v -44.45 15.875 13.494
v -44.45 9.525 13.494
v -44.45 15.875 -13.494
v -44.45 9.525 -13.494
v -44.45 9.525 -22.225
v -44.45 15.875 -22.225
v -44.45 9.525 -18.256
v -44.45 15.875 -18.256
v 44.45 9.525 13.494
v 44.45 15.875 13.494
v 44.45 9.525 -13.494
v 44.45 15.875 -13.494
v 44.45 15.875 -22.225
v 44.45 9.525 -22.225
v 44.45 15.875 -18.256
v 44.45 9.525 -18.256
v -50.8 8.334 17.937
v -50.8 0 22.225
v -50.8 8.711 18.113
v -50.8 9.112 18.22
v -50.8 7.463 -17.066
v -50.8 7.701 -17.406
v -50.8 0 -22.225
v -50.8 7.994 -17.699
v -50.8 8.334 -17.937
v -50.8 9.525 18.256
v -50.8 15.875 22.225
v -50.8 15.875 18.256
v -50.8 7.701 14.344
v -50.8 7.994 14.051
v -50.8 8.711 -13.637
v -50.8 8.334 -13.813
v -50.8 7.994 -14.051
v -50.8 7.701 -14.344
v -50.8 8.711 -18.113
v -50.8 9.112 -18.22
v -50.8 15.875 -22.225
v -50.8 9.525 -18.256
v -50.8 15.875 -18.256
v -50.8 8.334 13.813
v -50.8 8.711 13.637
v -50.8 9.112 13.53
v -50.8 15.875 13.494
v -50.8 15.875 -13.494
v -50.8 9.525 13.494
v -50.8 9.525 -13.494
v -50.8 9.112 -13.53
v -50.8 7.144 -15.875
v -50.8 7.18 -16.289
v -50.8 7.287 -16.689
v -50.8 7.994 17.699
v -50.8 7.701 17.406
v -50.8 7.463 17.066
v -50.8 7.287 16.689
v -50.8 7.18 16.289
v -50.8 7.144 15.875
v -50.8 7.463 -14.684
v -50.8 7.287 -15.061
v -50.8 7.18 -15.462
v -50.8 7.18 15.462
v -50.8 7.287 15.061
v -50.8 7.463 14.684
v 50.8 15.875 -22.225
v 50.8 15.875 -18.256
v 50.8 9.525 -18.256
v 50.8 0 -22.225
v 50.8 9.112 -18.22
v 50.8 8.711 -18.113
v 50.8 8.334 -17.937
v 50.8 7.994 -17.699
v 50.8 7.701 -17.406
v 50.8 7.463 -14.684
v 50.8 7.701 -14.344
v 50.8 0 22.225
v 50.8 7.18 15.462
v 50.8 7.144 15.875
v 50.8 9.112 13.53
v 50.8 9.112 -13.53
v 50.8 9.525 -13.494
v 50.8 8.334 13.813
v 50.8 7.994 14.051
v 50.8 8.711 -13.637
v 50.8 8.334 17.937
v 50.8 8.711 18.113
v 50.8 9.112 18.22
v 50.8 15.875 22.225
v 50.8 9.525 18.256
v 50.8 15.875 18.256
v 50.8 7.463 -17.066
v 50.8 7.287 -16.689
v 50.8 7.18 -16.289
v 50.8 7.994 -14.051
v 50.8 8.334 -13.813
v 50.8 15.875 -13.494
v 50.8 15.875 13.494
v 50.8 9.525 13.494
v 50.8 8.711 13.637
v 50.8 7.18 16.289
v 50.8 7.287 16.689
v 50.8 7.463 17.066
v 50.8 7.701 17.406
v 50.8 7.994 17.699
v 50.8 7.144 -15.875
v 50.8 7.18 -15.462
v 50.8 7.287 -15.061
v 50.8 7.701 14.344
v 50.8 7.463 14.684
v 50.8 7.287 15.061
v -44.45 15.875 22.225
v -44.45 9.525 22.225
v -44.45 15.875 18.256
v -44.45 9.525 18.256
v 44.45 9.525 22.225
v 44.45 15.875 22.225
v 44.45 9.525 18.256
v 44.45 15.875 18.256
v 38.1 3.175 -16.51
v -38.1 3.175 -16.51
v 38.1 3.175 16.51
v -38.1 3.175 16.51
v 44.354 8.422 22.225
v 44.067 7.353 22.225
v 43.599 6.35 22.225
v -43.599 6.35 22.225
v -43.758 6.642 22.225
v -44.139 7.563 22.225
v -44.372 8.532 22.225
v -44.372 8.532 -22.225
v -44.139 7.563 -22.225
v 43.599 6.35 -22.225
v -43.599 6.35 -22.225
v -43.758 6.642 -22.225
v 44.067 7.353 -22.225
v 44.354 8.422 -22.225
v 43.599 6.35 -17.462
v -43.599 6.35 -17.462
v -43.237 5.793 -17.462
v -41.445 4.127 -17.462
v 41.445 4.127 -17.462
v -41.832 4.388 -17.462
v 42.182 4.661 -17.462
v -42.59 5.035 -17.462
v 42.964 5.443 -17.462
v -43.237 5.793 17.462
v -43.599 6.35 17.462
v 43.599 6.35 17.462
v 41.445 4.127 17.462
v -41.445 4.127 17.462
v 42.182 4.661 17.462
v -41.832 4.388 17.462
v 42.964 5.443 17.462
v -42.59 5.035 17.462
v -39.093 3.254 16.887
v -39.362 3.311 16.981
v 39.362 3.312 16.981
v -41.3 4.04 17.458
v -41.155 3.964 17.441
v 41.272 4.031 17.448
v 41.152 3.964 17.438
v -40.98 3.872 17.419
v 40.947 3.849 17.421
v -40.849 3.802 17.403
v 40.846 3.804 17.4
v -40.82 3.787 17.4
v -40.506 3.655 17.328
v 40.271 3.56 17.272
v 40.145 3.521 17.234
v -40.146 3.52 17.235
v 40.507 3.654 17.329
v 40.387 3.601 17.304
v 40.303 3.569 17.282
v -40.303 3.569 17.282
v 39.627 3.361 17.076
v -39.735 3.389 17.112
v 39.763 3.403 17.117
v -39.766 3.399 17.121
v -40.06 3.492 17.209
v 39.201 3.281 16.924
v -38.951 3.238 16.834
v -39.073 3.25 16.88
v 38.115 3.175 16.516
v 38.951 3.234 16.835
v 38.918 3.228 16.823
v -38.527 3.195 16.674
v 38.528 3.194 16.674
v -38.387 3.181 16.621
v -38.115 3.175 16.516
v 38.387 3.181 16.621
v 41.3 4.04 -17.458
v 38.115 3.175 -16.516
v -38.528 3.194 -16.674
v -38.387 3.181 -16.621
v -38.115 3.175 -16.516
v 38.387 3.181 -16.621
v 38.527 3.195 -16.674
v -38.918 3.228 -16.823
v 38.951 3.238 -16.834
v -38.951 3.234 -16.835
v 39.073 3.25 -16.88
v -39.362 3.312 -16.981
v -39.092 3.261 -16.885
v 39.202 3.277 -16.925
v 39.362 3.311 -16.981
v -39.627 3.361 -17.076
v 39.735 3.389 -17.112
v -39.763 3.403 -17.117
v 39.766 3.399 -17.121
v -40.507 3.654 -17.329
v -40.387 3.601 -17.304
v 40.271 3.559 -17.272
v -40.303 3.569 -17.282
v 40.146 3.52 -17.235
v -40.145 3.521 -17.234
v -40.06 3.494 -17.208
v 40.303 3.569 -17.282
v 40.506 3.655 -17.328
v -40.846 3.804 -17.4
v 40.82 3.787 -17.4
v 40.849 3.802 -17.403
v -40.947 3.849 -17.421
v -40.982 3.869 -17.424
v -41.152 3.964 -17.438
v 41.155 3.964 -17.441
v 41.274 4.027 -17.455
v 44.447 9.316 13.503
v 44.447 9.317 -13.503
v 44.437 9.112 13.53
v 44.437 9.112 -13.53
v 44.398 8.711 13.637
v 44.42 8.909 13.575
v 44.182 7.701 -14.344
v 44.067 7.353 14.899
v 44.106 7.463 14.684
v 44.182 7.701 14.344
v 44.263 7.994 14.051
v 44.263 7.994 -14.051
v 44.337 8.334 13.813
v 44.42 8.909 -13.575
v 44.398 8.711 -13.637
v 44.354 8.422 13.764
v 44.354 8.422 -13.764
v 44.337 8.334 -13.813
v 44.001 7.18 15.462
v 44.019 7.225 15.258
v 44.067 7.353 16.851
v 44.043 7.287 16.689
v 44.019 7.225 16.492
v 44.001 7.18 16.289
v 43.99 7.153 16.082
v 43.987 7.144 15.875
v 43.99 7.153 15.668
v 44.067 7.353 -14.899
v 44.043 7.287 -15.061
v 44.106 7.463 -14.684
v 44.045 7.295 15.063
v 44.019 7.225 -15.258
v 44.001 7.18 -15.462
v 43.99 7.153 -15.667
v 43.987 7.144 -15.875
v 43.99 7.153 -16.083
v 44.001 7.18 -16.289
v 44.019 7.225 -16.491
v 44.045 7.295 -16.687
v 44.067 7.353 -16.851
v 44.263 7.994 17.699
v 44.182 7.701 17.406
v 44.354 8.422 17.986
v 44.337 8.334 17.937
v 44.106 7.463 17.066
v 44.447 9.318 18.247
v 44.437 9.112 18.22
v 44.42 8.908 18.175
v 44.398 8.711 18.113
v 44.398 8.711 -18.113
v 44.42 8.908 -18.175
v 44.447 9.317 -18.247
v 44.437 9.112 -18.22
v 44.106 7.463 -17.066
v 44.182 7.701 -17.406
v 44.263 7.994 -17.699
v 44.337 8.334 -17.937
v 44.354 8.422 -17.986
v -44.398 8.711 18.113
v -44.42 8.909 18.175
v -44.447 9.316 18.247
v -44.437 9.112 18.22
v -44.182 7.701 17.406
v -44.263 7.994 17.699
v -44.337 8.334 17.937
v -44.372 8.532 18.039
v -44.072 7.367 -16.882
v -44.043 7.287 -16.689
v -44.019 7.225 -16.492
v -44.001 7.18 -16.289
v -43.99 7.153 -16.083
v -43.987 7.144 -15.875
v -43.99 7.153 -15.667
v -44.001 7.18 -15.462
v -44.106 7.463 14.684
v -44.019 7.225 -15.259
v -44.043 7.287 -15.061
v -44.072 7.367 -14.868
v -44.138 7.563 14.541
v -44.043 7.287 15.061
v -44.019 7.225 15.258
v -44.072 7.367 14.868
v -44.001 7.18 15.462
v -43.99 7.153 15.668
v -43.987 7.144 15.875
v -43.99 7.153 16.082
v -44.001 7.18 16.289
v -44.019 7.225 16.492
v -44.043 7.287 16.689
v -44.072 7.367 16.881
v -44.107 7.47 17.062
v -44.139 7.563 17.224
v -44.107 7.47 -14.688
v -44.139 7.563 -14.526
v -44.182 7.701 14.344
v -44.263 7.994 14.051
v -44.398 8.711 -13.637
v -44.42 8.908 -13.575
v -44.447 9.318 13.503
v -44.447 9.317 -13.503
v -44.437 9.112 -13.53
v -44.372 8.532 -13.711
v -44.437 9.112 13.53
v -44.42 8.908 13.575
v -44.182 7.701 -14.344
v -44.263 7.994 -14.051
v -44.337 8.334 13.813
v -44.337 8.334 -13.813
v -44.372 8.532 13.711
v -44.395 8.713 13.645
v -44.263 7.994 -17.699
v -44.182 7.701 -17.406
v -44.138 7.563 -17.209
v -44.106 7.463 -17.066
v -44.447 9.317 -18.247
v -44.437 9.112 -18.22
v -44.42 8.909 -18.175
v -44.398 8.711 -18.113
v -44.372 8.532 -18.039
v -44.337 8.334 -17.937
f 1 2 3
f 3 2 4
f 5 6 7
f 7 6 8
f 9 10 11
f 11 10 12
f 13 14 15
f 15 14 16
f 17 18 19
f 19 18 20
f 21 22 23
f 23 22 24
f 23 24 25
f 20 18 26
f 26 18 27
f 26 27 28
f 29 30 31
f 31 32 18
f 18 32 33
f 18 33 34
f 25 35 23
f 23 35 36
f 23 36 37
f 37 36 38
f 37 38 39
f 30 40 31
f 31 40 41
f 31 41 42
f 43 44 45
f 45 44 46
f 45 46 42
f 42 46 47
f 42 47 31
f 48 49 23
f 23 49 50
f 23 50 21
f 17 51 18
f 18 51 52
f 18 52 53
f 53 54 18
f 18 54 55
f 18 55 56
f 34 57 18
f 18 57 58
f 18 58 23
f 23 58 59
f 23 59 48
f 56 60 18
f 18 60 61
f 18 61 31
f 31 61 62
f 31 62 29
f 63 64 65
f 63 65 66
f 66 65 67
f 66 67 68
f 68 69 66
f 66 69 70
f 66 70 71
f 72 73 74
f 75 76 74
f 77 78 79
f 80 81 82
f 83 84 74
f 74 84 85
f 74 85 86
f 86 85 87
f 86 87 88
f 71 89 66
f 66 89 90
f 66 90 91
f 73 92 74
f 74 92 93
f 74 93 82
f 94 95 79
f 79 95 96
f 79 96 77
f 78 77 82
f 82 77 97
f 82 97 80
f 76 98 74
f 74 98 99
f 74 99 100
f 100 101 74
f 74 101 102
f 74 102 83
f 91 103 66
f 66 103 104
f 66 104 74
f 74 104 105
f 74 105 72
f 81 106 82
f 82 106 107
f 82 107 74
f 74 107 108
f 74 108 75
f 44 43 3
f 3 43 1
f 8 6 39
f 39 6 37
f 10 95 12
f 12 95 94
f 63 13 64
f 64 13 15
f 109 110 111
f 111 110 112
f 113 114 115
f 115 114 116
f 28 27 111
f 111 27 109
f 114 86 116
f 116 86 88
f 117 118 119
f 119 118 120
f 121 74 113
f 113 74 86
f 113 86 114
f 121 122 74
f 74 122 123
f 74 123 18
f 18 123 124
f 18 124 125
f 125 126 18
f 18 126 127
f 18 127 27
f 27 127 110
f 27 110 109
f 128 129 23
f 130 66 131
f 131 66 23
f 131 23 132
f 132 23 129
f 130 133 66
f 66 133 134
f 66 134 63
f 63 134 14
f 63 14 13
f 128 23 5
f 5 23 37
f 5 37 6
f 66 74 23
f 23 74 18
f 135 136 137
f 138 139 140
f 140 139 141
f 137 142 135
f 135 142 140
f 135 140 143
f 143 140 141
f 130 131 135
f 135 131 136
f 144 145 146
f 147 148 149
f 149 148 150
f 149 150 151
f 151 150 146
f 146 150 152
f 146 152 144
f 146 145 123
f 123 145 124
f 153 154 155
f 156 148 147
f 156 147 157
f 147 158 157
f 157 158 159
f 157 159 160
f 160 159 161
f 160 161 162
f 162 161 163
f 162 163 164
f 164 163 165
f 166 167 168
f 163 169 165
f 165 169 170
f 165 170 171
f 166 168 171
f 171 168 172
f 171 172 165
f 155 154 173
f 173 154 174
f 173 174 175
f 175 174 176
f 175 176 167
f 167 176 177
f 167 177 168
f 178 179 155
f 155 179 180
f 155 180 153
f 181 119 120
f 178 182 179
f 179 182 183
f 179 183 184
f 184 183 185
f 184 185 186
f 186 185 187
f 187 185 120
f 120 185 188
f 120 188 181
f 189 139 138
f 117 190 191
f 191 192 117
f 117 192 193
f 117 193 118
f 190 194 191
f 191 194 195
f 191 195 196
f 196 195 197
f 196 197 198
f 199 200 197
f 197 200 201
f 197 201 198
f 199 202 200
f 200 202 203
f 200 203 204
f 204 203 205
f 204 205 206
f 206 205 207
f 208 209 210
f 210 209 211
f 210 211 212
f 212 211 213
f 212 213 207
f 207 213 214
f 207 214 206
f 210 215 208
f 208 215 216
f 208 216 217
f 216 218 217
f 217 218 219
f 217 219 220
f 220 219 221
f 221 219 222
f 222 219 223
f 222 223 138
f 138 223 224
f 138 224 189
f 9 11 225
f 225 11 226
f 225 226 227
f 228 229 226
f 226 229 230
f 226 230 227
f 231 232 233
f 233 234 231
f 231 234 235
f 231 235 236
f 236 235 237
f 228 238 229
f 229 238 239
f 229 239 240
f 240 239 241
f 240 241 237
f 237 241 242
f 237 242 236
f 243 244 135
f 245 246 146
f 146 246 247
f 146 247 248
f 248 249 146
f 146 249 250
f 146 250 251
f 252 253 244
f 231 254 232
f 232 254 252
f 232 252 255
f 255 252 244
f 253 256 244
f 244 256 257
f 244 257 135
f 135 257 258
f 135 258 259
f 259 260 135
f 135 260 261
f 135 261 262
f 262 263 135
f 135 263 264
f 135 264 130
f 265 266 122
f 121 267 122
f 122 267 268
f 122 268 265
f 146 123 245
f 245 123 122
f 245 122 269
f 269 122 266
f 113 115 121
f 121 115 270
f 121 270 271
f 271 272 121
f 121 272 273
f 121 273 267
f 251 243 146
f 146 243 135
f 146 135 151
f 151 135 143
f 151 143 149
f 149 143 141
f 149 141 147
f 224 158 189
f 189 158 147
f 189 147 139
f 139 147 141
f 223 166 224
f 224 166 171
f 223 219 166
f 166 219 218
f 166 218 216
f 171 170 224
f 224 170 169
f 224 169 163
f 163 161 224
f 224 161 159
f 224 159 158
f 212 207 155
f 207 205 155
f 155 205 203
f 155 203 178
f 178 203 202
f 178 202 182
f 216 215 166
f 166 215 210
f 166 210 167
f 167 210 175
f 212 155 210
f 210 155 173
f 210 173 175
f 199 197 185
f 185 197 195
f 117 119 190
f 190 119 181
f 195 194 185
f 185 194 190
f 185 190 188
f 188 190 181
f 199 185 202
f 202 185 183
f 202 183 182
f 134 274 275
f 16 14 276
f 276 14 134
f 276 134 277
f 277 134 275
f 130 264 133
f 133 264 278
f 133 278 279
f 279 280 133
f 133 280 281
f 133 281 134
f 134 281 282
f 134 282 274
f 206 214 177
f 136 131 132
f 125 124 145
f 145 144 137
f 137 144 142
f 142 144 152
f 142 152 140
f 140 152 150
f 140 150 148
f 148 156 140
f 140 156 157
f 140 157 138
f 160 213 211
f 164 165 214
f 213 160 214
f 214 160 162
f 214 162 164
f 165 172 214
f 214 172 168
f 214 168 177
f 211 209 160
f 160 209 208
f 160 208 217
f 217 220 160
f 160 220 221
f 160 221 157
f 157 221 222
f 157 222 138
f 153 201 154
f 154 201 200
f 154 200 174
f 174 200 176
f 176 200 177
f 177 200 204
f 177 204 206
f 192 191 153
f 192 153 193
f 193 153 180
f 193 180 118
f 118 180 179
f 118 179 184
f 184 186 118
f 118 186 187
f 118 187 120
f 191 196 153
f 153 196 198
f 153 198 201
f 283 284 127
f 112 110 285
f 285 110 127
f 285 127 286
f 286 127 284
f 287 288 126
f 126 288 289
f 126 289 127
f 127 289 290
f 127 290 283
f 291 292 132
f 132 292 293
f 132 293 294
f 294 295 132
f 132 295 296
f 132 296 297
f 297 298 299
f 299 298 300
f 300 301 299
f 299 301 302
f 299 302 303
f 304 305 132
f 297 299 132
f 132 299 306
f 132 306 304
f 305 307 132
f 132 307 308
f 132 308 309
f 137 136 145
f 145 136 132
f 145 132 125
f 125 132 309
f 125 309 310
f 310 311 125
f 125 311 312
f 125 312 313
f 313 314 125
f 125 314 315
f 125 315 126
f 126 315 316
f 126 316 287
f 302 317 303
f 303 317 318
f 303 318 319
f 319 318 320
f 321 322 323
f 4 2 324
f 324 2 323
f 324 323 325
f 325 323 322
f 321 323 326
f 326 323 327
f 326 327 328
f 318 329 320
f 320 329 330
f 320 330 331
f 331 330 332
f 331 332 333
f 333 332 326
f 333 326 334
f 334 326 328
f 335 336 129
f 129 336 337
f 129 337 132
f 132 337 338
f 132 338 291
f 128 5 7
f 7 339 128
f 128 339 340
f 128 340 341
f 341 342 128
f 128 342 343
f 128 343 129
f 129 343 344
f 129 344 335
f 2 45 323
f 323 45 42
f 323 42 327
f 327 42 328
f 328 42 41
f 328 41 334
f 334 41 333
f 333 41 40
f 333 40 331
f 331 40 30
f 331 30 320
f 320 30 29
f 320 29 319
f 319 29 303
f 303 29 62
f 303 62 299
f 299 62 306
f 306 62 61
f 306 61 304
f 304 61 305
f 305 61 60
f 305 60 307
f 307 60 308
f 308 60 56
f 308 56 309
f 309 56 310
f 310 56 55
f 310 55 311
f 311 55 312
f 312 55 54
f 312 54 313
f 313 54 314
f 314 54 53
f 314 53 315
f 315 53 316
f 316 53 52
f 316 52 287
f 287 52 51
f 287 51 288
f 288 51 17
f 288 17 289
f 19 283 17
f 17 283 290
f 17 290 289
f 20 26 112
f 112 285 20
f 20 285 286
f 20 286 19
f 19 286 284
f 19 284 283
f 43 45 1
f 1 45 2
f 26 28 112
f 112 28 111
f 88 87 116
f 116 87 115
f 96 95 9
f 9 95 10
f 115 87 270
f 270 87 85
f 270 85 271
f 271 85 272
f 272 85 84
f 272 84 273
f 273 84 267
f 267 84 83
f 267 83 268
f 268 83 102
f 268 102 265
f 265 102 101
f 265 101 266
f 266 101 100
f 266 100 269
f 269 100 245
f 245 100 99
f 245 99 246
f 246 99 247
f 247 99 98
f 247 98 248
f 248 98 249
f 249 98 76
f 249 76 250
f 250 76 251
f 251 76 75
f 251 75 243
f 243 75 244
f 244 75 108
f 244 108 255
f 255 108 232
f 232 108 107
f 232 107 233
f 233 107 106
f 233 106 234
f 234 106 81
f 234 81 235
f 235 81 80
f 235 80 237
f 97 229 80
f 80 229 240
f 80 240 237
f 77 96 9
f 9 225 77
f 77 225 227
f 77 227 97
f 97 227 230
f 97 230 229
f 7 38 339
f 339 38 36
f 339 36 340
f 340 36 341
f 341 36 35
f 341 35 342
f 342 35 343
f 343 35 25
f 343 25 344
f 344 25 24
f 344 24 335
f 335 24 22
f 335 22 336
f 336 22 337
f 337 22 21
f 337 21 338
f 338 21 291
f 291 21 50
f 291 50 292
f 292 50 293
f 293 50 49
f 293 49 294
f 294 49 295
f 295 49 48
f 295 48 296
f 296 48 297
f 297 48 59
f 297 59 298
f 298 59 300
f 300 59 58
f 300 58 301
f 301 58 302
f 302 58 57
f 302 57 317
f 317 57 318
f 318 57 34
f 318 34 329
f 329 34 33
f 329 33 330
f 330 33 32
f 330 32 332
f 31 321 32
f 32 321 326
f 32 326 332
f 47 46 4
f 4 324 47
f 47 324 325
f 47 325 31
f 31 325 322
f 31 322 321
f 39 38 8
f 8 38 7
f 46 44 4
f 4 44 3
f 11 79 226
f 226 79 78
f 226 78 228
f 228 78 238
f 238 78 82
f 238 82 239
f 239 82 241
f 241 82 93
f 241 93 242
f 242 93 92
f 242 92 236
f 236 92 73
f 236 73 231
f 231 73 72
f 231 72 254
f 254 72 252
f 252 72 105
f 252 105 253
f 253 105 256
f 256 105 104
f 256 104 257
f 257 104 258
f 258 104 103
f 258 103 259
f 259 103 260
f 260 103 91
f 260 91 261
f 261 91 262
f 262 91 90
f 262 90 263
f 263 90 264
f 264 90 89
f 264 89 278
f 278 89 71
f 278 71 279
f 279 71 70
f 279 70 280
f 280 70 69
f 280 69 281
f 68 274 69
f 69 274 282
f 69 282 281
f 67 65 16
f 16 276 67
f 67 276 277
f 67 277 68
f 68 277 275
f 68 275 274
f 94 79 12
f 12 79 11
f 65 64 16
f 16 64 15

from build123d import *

# Parameters (mm, degrees)
SKETCH1_W           = 101.6
SKETCH1_H           = 44.45
BOSS_EXTRUDE1_DEPTH = 3.175
SKETCH2_W           = 6.35
SKETCH2_H           = 44.45
BOSS_EXTRUDE2_DEPTH = 12.7
SKETCH3_W           = 88.9
SKETCH3_H           = 4.7625
BOSS_EXTRUDE3_DEPTH = 3.175
FILLET1_R           = 0.9525
FILLET2_R           = 6.35
SKETCH4_R           = 2.38125
CUT_EXTRUDE1_DEPTH  = 106.20706371


with BuildPart() as part:
    # Sketch1 → Boss-Extrude1 (new body)
    with BuildSketch(Plane(origin=(0, 0, 0), x_dir=(1, 0, 0), z_dir=(0, 1, 0))):
        Rectangle(SKETCH1_W, SKETCH1_H)
    extrude(amount=BOSS_EXTRUDE1_DEPTH)

    # Sketch2 → Boss-Extrude2 (add)
    with BuildSketch(Plane(origin=(0, 3.175, 0), x_dir=(1, 0, 0), z_dir=(0, 1, 0))):
        with Locations((-47.625, 0)):
            Rectangle(SKETCH2_W, SKETCH2_H)
        with Locations((47.625, 0)):
            Rectangle(SKETCH2_W, SKETCH2_H)
    extrude(amount=BOSS_EXTRUDE2_DEPTH)

    # Sketch3 → Boss-Extrude3 (add)
    with BuildSketch(Plane(origin=(0, 3.175, 0), x_dir=(1, 0, 0), z_dir=(0, 1, 0))):
        with Locations((0, 19.84375)):
            Rectangle(SKETCH3_W, SKETCH3_H)
        with Locations((0, -19.84375)):
            Rectangle(SKETCH3_W, SKETCH3_H)
    extrude(amount=BOSS_EXTRUDE3_DEPTH)

    # Fillet1
    fillet1_edges = [part.edges().sort_by_distance(p)[0] for p in [
        (0, 3.175, 17.4625),
        (0, 3.175, -17.4625),
    ]]
    fillet(fillet1_edges, radius=FILLET1_R)

    # Fillet2
    # the kernel refuses this fillet: 6.35 mm, written as the material it adds along each edge
    with BuildSketch(Plane(origin=(44.45, 3.175, -32.385), x_dir=(0, 1, 0), z_dir=(0, 0, 1))) as fillet2_piece_1_section:
        with BuildLine():
            CenterArc((FILLET2_R, FILLET2_R), FILLET2_R, 180, 90)
            Line((0, FILLET2_R), (0, 0))
            Line((0, 0), (FILLET2_R, 0))
        make_face()
    fillet2_piece_1 = extrude(amount=64.77, mode=Mode.PRIVATE)
    fillet2_piece_1 = split(fillet2_piece_1, bisect_by=Plane(origin=(44.198002836, 7.13272394, -22.225), z_dir=(0, 0, 1)), keep=Keep.TOP, mode=Mode.PRIVATE)
    fillet2_piece_1 = split(fillet2_piece_1, bisect_by=Plane(origin=(44.198002836, 7.13272394, 22.225), z_dir=(0, 0, -1)), keep=Keep.TOP, mode=Mode.PRIVATE)
    add(fillet2_piece_1)
    with BuildSketch(Plane(origin=(-44.45, 3.175, -32.385), x_dir=(1, 0, 0), z_dir=(0, 0, 1))) as fillet2_piece_2_section:
        with BuildLine():
            CenterArc((FILLET2_R, FILLET2_R), FILLET2_R, 180, 90)
            Line((0, FILLET2_R), (0, 0))
            Line((0, 0), (FILLET2_R, 0))
        make_face()
    fillet2_piece_2 = extrude(amount=64.77, mode=Mode.PRIVATE)
    fillet2_piece_2 = split(fillet2_piece_2, bisect_by=Plane(origin=(-44.198002836, 7.13272394, -22.225), z_dir=(0, 0, 1)), keep=Keep.TOP, mode=Mode.PRIVATE)
    fillet2_piece_2 = split(fillet2_piece_2, bisect_by=Plane(origin=(-44.198002836, 7.13272394, 22.225), z_dir=(0, 0, -1)), keep=Keep.TOP, mode=Mode.PRIVATE)
    add(fillet2_piece_2)

    # Sketch4 → Cut-Extrude1 (cut, through all)
    with BuildSketch(Plane(origin=(50.8, 0, 0), x_dir=(0, 0, -1), z_dir=(1, 0, 0))):
        with BuildLine():
            Line((-18.25625, 15.875), (-18.25625, 9.525))
            ThreePointArc((-18.25625, 9.525), (-15.875, 11.90625), (-13.49375, 9.525))
            Line((-13.49375, 9.525), (-13.49375, 15.875))
            Line((-13.49375, 15.875), (-18.25625, 15.875))
        make_face()
        with Locations((-15.875, 9.525)):
            Circle(SKETCH4_R)
        with Locations((15.875, 9.525)):
            Circle(SKETCH4_R)
        with BuildLine():
            Line((18.25625, 15.875), (13.49375, 15.875))
            Line((13.49375, 15.875), (13.49375, 9.525))
            ThreePointArc((13.49375, 9.525), (15.875, 11.90625), (18.25625, 9.525))
            Line((18.25625, 9.525), (18.25625, 15.875))
        make_face()
    extrude(amount=-CUT_EXTRUDE1_DEPTH, mode=Mode.SUBTRACT)


solid = part.part
